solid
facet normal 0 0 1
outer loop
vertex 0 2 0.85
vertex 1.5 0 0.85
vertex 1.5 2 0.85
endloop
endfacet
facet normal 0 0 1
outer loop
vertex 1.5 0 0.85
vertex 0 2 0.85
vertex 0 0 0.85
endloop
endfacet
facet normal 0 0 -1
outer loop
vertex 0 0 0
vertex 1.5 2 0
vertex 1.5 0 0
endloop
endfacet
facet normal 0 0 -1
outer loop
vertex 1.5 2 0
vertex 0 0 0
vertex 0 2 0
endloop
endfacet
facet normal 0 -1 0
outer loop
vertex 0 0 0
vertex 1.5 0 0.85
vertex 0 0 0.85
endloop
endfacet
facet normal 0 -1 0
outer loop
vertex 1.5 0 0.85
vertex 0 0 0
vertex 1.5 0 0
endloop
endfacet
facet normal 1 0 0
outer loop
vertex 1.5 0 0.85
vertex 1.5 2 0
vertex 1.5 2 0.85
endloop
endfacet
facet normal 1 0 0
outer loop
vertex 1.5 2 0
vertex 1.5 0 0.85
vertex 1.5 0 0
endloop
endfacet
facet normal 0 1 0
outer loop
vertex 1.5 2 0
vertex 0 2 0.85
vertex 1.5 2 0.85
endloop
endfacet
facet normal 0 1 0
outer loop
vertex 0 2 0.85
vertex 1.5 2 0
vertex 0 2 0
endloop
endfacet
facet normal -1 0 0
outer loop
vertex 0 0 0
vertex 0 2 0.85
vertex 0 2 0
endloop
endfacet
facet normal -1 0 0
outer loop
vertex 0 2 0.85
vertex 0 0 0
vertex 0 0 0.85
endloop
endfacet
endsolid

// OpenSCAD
/* Warning, this is a very basic generator with a lot of approximation 
input data : [VFBGA, E8B, 1.5x2x0.85mm, 8, , A, C04-21198A]
generated by com.zoubworld.electronics.cad.model3d.Basic
Date : Sun Feb 15 10:50:49 CET 2026
*/

//body
color("black")
translate([0,0,0])
cube([1.5,2.0,0.85], center=false);
